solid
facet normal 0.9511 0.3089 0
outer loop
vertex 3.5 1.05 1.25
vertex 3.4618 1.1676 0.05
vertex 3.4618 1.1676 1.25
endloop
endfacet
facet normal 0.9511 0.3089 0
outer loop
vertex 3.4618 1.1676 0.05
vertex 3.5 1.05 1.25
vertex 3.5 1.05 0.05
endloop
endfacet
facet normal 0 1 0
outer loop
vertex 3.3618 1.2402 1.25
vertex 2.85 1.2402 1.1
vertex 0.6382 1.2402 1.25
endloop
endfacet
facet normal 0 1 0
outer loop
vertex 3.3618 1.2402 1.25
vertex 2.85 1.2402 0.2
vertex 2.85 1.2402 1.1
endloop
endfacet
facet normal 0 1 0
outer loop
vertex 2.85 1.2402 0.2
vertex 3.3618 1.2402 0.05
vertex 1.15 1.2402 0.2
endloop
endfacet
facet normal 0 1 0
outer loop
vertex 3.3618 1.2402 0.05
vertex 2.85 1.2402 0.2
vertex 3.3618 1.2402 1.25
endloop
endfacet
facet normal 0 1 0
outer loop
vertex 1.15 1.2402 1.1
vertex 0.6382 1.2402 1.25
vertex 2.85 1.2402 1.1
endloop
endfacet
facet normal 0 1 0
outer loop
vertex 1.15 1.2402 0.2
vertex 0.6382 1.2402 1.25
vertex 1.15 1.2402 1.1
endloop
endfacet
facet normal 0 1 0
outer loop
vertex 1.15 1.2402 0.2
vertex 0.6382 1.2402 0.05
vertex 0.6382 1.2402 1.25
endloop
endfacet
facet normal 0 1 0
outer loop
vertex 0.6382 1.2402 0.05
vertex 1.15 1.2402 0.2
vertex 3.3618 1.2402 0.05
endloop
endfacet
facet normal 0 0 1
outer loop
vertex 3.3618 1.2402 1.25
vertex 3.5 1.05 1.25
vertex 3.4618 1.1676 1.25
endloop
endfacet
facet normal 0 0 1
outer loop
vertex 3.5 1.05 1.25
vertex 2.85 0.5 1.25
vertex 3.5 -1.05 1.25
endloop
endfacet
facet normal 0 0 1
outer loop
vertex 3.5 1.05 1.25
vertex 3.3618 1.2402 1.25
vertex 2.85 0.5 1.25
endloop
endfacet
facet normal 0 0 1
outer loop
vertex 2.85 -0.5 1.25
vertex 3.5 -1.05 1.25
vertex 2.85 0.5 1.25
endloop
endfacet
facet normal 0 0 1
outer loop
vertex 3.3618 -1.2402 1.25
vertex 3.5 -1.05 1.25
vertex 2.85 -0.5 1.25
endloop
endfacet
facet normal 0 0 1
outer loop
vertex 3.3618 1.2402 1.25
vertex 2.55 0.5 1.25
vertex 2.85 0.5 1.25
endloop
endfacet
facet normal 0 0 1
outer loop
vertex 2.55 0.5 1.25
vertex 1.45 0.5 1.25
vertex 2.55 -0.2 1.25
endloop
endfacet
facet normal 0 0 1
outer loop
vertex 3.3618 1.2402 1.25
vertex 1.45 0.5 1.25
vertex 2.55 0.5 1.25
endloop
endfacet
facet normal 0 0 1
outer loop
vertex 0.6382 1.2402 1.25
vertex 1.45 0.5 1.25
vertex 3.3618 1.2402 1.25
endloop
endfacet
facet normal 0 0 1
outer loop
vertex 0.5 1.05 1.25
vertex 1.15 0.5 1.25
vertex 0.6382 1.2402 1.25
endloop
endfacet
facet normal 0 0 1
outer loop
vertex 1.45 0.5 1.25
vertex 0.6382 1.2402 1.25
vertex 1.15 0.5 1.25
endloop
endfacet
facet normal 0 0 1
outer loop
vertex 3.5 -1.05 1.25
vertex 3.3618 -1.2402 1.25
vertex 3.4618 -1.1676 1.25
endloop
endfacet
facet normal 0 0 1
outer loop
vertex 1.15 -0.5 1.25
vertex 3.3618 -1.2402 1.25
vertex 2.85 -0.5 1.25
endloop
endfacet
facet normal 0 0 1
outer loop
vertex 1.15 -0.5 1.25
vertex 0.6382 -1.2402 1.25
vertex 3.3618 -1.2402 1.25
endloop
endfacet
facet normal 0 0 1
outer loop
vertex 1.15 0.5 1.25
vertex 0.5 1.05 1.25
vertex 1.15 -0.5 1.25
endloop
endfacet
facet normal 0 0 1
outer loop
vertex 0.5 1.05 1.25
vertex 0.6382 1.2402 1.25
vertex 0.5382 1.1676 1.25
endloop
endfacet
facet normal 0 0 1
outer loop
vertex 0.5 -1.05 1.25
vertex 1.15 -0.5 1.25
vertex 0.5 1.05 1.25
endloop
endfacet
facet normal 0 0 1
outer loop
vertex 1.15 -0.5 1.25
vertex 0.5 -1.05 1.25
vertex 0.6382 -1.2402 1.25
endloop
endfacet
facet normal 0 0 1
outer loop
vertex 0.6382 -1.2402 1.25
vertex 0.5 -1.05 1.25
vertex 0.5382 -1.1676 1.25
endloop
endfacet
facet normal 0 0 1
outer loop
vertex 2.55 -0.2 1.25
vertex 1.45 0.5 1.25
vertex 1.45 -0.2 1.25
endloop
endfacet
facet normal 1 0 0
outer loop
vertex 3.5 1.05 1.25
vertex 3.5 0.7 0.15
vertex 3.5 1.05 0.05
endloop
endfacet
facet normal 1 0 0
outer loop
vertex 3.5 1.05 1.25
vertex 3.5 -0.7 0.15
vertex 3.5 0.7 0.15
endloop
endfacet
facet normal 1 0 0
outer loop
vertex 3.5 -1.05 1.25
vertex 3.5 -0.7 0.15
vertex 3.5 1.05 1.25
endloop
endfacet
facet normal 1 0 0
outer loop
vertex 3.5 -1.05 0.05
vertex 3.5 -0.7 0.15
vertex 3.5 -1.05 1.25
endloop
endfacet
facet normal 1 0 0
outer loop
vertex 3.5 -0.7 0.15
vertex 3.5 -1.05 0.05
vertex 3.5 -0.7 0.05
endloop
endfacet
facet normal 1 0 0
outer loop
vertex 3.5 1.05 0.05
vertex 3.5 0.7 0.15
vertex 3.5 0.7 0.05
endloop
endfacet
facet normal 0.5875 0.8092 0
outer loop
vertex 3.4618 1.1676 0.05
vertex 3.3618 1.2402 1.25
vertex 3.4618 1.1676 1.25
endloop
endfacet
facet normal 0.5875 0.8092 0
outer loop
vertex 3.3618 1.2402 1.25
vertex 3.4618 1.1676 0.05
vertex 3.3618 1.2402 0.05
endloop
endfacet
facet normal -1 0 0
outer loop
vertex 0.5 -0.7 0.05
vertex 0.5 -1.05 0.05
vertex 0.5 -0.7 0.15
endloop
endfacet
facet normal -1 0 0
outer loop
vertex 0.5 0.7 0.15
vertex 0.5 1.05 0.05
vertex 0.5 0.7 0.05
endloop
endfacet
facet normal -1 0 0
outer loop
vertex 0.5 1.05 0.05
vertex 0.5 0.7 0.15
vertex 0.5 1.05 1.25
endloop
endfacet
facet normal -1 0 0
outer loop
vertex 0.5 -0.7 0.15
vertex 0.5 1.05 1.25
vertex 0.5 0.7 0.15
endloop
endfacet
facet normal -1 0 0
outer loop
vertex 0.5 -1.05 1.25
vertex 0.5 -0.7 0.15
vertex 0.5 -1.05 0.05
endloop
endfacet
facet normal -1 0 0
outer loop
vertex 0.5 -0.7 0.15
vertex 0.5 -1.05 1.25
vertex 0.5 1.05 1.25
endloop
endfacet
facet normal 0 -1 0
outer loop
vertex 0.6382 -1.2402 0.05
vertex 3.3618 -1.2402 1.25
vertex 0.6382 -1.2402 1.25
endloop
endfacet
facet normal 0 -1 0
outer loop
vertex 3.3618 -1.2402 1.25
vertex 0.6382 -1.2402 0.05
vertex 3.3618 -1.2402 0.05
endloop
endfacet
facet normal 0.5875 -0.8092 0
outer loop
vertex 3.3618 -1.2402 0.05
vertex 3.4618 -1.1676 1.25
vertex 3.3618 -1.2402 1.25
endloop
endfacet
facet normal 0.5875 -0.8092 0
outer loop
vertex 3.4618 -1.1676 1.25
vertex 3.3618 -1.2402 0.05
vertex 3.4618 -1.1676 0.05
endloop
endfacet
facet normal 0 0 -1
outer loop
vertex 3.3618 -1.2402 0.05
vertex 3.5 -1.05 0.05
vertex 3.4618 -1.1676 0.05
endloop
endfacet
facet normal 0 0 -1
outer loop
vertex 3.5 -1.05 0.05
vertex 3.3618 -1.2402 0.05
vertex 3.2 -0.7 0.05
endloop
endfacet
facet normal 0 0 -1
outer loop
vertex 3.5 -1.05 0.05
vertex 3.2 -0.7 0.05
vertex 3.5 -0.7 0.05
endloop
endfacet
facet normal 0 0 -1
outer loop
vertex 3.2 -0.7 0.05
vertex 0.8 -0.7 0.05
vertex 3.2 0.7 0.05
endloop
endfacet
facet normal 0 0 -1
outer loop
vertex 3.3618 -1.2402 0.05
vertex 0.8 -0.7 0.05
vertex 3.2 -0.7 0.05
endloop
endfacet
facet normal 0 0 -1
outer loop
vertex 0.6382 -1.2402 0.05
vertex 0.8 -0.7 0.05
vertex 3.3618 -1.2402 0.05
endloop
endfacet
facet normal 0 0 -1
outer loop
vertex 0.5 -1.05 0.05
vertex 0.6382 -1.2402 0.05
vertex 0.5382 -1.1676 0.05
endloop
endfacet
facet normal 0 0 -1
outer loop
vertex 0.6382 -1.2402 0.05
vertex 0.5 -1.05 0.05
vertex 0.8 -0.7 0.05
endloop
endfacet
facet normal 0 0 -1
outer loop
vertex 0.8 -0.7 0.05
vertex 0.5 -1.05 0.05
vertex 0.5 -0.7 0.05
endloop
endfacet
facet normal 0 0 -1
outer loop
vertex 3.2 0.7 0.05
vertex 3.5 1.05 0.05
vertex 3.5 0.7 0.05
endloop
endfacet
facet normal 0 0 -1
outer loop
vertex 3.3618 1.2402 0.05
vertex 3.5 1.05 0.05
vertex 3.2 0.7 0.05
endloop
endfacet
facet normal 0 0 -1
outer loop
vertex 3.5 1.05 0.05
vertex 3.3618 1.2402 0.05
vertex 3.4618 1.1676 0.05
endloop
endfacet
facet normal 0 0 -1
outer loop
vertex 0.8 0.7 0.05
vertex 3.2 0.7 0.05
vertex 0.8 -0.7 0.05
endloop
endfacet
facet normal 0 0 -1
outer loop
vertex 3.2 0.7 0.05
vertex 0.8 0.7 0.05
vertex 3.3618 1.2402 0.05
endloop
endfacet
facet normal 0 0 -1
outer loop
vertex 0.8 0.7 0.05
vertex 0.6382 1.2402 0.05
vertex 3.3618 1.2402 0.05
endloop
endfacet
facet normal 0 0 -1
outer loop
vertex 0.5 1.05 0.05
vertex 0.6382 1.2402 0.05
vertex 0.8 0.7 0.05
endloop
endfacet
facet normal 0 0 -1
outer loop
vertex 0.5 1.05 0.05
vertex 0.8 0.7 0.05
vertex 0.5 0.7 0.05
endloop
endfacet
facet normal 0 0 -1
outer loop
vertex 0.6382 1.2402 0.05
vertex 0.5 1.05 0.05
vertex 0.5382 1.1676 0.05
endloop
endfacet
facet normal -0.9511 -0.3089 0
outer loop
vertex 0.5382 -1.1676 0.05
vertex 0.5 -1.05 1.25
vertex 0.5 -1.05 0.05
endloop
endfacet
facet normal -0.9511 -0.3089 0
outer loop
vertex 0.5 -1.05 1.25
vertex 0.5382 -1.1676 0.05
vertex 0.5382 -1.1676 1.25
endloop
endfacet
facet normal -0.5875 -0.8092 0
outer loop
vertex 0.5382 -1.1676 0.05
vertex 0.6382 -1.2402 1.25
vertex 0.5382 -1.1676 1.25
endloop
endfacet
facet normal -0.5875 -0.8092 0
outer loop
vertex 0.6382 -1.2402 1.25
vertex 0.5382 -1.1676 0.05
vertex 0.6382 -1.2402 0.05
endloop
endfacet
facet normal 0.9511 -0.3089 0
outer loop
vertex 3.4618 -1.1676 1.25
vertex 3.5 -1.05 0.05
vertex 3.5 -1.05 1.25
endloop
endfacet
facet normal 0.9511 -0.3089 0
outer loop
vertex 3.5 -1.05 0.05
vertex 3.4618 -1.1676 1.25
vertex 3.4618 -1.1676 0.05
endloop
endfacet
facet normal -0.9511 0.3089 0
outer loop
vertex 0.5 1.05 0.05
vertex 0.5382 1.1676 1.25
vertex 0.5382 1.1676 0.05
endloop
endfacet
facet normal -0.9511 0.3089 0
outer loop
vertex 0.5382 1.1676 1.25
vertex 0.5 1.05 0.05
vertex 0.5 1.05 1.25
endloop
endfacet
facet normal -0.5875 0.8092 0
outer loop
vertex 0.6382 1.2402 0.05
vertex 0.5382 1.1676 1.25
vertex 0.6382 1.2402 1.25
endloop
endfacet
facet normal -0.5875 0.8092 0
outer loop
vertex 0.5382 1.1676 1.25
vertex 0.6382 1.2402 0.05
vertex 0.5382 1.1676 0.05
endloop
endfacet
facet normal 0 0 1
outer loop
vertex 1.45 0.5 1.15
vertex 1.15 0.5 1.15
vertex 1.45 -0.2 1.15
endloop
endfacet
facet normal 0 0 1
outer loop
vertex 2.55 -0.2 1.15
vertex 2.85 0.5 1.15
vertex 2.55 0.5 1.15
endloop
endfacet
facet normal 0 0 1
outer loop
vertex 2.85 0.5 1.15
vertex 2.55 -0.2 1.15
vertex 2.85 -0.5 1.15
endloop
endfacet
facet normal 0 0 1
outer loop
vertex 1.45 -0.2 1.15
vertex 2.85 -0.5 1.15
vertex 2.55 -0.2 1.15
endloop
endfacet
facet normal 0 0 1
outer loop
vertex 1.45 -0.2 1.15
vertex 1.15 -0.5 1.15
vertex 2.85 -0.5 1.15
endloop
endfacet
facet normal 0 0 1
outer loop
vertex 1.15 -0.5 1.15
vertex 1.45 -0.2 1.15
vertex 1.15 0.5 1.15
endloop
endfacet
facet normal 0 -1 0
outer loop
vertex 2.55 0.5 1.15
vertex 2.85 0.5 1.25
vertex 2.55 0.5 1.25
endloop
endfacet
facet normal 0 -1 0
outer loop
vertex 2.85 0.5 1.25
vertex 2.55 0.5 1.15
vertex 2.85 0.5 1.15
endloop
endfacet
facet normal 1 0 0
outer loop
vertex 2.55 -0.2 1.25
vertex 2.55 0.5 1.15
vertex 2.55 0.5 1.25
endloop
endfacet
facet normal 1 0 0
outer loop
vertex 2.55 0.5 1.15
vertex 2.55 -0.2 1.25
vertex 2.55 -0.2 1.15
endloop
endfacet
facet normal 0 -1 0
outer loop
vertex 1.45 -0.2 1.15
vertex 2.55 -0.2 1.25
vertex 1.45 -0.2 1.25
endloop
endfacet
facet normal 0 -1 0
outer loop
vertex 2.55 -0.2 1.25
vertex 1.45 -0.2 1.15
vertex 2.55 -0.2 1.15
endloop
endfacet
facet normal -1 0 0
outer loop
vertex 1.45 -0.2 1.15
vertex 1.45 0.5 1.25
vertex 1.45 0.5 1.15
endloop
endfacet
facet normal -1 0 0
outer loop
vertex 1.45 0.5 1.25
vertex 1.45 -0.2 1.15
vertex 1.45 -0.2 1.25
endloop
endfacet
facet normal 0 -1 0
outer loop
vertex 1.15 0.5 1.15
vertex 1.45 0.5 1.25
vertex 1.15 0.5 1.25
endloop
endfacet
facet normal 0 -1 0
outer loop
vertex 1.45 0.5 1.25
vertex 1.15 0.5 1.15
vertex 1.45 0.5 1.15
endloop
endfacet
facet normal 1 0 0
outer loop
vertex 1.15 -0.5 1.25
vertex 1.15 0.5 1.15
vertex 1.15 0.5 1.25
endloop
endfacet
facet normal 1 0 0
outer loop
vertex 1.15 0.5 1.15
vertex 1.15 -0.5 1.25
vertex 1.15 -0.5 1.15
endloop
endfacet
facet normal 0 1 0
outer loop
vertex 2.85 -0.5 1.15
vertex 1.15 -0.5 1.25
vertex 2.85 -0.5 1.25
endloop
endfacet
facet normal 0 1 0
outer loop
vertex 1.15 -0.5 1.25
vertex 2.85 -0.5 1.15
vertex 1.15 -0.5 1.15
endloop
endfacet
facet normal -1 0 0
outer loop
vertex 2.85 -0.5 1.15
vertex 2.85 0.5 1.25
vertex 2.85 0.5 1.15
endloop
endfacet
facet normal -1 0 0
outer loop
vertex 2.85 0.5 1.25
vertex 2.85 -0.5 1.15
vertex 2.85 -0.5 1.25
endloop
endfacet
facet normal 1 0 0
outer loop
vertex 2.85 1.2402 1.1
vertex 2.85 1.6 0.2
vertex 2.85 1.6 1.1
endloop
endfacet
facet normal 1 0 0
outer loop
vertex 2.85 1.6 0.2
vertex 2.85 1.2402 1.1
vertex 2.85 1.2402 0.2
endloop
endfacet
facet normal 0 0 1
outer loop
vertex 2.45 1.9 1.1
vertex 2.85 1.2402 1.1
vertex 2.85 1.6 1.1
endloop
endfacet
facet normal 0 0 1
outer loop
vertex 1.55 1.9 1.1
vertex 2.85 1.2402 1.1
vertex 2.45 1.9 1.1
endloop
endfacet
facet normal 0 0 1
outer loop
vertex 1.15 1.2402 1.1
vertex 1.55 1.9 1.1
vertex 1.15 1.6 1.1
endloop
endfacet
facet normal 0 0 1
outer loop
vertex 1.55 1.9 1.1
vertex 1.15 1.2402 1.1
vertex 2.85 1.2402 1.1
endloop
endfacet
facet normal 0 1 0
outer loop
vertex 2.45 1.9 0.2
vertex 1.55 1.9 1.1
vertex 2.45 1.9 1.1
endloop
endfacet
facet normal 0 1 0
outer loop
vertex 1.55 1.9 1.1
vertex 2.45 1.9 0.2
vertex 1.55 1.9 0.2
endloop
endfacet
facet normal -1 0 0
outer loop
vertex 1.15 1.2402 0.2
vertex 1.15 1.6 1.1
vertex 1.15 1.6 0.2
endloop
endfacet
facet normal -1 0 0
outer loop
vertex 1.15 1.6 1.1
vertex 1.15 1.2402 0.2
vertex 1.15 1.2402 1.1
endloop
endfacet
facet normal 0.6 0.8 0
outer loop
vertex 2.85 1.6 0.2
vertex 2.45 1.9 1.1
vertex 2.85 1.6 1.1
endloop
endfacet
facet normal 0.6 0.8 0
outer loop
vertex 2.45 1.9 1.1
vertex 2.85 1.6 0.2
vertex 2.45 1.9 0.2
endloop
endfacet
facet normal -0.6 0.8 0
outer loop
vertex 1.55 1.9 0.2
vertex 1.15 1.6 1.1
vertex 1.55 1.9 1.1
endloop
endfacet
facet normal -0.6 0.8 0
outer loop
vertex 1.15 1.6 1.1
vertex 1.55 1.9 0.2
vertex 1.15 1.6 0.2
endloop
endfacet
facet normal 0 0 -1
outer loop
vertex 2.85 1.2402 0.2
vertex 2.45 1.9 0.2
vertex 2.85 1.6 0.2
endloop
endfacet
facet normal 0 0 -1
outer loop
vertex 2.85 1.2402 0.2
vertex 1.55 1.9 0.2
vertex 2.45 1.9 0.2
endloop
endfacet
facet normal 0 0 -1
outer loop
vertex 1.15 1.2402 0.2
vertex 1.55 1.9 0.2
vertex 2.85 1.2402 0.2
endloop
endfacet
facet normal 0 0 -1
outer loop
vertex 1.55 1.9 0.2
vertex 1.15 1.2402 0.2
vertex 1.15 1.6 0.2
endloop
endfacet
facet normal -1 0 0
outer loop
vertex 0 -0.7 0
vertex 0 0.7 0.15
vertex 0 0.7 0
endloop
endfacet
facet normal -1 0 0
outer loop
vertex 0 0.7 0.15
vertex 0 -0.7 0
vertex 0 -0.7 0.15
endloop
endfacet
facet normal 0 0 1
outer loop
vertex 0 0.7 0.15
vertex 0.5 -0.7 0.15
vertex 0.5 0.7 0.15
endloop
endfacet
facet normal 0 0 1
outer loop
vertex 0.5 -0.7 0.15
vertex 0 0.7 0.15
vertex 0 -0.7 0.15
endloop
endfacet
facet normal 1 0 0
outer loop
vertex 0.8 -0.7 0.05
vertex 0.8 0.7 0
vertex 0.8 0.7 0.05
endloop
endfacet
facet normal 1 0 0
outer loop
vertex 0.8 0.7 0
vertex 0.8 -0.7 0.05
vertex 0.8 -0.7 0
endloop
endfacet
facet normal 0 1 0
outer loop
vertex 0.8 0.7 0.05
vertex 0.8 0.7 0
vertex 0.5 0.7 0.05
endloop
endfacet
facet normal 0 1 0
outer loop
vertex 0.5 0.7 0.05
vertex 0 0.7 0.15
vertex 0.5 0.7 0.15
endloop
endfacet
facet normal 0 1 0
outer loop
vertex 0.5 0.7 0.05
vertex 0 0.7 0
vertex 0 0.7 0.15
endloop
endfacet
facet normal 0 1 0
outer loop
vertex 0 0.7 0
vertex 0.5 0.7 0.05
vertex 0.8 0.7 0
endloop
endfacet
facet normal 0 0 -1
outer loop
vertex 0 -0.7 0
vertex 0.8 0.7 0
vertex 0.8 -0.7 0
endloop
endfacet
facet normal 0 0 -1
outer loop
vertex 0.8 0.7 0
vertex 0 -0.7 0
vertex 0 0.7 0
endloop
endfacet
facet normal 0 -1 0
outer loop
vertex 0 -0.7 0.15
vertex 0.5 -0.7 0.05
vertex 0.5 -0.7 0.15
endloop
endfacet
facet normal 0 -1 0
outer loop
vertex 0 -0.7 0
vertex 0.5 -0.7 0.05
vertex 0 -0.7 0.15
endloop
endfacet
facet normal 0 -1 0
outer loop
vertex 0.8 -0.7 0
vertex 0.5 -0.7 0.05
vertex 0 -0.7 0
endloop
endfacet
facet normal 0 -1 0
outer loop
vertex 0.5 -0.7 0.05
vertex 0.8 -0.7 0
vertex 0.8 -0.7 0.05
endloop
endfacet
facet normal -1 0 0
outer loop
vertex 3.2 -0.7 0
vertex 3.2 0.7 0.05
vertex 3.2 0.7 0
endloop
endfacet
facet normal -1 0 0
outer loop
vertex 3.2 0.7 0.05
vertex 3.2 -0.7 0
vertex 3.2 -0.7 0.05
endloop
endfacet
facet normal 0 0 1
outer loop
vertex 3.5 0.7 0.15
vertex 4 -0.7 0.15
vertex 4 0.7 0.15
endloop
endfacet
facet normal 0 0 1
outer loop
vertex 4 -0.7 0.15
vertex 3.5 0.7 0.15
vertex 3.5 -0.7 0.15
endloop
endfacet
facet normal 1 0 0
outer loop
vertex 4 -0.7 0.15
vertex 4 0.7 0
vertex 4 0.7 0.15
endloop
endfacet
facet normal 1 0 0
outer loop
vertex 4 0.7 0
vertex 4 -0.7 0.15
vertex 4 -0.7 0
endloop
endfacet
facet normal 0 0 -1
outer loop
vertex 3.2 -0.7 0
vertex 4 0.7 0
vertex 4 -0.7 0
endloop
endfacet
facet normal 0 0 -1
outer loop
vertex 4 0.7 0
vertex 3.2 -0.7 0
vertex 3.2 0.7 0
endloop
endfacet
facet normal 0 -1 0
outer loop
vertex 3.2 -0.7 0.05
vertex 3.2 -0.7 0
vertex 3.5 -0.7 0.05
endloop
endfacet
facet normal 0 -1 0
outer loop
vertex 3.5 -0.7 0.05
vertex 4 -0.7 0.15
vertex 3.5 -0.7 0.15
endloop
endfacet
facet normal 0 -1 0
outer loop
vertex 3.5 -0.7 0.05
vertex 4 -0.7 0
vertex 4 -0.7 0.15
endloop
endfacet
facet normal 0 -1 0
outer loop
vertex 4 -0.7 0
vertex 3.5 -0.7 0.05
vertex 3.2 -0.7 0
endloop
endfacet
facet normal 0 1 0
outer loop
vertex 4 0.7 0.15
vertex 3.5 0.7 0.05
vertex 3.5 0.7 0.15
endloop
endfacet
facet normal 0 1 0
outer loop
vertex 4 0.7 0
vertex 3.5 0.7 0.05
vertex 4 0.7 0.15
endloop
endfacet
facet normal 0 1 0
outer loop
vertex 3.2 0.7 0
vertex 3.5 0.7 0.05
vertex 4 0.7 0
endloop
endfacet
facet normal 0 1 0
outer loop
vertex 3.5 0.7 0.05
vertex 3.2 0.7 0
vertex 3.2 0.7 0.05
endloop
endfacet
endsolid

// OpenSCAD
pad_length = 0.8;

union()
{
	// Button
	translate([2-0.85,1.20,0.65])
		linear_extrude(height = 0.9, center = true)
			polygon(points=[[0,0],[0,0.4],[0.4,0.7],[1.3,0.7],[1.7,0.4],[1.7,0]]);

	// Case
	difference()
	{
		translate([0.5+0.2,-1.25+0.2,0.05])
			minkowski()
			{
				cube([3-0.4,2.5-0.4,1.0],center=false);
				cylinder(r=0.2,h=0.2,$fn=10);
			}


		translate([0.5+0.65,-0.5,1.35])
			linear_extrude(height = 0.4, center = true)
				polygon(points=[[0,0],[0,1],[0.3,1],[0.3,0.3],[1.7-0.3,0.3],[1.7-0.3,1],[1.7,1],[1.7,0]]);
	}

	// Left pin
	translate([0,-0.7,0])
		cube([pad_length,1.4,0.15], center=false);

	// Right pin
	translate([4-pad_length,-0.7,0])
		cube([pad_length,1.4,0.15], center=false);
}
